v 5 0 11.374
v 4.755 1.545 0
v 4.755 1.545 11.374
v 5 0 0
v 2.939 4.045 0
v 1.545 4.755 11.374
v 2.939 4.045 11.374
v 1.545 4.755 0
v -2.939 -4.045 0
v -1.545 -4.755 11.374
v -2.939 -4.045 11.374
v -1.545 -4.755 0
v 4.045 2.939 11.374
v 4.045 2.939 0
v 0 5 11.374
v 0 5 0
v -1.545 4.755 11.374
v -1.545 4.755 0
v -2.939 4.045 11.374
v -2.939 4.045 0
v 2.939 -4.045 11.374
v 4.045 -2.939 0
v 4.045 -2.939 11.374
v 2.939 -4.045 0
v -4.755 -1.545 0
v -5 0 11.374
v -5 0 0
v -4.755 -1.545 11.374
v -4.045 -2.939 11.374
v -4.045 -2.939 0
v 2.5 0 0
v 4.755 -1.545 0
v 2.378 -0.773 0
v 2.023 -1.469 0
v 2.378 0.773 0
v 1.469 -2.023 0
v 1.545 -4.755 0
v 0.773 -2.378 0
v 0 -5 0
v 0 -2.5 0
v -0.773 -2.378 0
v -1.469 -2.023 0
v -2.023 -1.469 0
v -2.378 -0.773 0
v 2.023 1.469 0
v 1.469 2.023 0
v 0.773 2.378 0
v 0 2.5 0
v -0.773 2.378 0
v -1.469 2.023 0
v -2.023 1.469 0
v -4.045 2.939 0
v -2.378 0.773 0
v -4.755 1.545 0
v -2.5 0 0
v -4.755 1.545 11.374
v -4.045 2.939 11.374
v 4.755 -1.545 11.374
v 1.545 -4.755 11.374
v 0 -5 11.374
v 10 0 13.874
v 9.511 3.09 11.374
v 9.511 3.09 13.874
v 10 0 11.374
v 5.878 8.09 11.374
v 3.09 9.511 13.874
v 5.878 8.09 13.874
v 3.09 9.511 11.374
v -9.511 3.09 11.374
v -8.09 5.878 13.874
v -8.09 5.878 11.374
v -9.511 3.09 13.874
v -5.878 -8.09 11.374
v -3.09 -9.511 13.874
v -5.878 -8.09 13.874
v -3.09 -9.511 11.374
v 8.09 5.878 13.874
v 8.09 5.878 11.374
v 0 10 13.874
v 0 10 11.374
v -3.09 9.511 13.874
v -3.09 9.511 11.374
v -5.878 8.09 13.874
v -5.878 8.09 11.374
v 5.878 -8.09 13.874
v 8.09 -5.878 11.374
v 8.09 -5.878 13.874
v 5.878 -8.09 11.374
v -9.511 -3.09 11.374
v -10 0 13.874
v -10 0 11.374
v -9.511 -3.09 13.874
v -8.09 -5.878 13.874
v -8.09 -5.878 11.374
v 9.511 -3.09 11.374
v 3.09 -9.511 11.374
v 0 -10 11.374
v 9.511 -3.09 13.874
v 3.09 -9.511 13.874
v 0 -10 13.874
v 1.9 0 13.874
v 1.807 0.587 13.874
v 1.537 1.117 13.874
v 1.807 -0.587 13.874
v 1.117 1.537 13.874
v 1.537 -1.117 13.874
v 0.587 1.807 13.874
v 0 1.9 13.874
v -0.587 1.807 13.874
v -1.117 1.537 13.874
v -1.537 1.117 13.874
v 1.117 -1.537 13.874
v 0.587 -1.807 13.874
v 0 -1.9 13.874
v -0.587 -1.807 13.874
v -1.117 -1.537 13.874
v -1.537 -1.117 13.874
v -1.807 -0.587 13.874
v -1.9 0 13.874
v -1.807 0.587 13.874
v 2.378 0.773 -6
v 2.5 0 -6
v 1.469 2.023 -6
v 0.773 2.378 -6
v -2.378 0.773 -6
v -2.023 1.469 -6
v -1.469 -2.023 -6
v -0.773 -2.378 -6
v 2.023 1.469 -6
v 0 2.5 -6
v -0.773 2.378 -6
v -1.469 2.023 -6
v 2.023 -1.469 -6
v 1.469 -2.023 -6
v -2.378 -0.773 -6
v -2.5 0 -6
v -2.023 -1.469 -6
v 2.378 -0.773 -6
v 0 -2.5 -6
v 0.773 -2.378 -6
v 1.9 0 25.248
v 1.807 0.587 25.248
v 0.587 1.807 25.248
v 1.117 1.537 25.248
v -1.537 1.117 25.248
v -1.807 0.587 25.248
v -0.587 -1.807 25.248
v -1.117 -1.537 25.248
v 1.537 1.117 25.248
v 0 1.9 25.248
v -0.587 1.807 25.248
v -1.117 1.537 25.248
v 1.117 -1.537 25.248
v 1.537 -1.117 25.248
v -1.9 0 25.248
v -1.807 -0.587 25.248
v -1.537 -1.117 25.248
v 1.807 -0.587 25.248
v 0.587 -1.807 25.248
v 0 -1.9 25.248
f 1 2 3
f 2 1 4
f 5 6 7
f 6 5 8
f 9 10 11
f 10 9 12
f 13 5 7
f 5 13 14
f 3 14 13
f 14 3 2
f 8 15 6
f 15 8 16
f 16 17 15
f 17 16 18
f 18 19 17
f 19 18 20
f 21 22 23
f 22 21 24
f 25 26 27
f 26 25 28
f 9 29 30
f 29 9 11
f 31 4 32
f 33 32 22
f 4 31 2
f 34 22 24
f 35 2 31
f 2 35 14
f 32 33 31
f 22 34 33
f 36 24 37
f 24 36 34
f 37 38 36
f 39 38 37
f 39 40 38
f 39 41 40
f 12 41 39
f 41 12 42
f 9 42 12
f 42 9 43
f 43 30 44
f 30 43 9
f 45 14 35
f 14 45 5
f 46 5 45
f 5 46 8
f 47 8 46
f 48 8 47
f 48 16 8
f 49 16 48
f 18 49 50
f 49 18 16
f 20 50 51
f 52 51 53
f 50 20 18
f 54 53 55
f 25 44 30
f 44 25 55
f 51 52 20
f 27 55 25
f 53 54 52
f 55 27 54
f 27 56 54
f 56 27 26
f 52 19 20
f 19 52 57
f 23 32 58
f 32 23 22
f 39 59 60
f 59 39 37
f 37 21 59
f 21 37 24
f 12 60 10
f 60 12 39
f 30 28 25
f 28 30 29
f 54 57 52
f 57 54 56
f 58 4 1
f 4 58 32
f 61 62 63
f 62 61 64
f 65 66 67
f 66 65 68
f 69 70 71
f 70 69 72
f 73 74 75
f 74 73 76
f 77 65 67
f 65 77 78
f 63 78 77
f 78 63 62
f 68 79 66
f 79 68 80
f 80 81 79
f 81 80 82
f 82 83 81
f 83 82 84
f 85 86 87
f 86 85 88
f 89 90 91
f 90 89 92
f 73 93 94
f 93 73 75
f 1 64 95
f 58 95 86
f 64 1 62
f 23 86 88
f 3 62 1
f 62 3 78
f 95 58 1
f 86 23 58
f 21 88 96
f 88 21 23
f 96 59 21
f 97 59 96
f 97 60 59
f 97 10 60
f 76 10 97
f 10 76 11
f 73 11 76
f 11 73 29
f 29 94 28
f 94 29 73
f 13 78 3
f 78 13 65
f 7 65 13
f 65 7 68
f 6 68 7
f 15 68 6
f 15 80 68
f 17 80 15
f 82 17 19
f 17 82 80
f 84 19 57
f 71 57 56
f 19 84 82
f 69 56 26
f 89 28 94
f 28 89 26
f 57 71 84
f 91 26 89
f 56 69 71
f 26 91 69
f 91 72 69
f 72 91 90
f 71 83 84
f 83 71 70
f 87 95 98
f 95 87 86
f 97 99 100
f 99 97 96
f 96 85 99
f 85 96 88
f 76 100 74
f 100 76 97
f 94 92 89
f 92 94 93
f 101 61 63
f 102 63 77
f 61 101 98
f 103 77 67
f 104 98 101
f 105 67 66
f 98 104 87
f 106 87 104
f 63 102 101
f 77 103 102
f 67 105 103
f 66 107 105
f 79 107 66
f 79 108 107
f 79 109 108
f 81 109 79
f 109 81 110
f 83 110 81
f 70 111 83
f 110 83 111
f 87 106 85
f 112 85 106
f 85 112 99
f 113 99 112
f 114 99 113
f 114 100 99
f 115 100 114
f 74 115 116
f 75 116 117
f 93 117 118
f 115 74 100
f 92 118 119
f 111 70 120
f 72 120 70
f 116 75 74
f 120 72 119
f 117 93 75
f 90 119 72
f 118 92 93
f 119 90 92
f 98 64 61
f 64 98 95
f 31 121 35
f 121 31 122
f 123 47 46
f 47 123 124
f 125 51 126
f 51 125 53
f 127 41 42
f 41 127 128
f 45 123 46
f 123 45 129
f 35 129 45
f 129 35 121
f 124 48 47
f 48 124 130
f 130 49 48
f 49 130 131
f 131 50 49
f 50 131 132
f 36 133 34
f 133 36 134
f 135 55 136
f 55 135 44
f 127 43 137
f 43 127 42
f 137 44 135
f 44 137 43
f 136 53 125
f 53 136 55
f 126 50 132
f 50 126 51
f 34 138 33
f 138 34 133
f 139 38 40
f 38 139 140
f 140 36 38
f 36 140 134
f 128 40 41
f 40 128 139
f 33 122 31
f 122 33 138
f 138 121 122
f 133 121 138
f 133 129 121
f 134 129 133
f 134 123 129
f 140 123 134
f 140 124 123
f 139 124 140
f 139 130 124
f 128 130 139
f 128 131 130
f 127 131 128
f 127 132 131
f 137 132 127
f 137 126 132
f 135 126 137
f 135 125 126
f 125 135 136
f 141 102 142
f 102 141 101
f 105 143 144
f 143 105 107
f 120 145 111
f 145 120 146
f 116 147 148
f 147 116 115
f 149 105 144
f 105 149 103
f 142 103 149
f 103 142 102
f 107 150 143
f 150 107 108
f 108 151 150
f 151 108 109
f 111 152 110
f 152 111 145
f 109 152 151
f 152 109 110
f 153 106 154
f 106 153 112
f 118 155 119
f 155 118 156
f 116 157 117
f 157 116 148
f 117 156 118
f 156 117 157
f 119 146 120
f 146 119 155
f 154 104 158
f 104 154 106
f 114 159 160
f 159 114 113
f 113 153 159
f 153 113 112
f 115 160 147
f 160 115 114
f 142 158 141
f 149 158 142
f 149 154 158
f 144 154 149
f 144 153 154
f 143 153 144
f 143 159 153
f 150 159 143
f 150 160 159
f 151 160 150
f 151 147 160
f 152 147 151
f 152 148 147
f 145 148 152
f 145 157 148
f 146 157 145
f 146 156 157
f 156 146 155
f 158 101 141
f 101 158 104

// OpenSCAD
//////////////////////////////////////////////////////////////////////////////////////////////
// Public Domain Parametric Involute Spur Gear (and involute helical gear and involute rack)
// version 1.1
// by Leemon Baird, 2011, Leemon@Leemon.com
//http://www.thingiverse.com/thing:5505
//
// This file is public domain.  Use it for any purpose, including commercial
// applications.  Attribution would be nice, but is not required.  There is
// no warranty of any kind, including its correctness, usefulness, or safety.
// 
// This is parameterized involute spur (or helical) gear.  It is much simpler and less powerful than
// others on Thingiverse.  But it is public domain.  I implemented it from scratch from the 
// descriptions and equations on Wikipedia and the web, using Mathematica for calculations and testing,
// and I now release it into the public domain.
//
//		http://en.wikipedia.org/wiki/Involute_gear
//		http://en.wikipedia.org/wiki/Gear
//		http://en.wikipedia.org/wiki/List_of_gear_nomenclature
//		http://gtrebaol.free.fr/doc/catia/spur_gear.html
//		http://www.cs.cmu.edu/~rapidproto/mechanisms/chpt7.html
//
// The module gear() gives an involute spur gear, with reasonable defaults for all the parameters.
// Normally, you should just choose the first 4 parameters, and let the rest be default values.
// The module gear() gives a gear in the XY plane, centered on the origin, with one tooth centered on
// the positive Y axis.  The various functions below it take the same parameters, and return various
// measurements for the gear.  The most important is pitch_radius, which tells how far apart to space
// gears that are meshing, and adendum_radius, which gives the size of the region filled by the gear.
// A gear has a "pitch circle", which is an invisible circle that cuts through the middle of each
// tooth (though not the exact center). In order for two gears to mesh, their pitch circles should 
// just touch.  So the distance between their centers should be pitch_radius() for one, plus pitch_radius() 
// for the other, which gives the radii of their pitch circles.
//
// In order for two gears to mesh, they must have the same mm_per_tooth and pressure_angle parameters.  
// mm_per_tooth gives the number of millimeters of arc around the pitch circle covered by one tooth and one
// space between teeth.  The pitch angle controls how flat or bulged the sides of the teeth are.  Common
// values include 14.5 degrees and 20 degrees, and occasionally 25.  Though I've seen 28 recommended for
// plastic gears. Larger numbers bulge out more, giving stronger teeth, so 28 degrees is the default here.
//
// The ratio of number_of_teeth for two meshing gears gives how many times one will make a full 
// revolution when the the other makes one full revolution.  If the two numbers are coprime (i.e. 
// are not both divisible by the same number greater than 1), then every tooth on one gear
// will meet every tooth on the other, for more even wear.  So coprime numbers of teeth are good.
//
// The module rack() gives a rack, which is a bar with teeth.  A rack can mesh with any
// gear that has the same mm_per_tooth and pressure_angle.
//
// Some terminology: 
// The outline of a gear is a smooth circle (the "pitch circle") which has mountains and valleys
// added so it is toothed.  So there is an inner circle (the "root circle") that touches the 
// base of all the teeth, an outer circle that touches the tips of all the teeth,
// and the invisible pitch circle in between them.  There is also a "base circle", which can be smaller than
// all three of the others, which controls the shape of the teeth.  The side of each tooth lies on the path 
// that the end of a string would follow if it were wrapped tightly around the base circle, then slowly unwound.  
// That shape is an "involute", which gives this type of gear its name.
//
//////////////////////////////////////////////////////////////////////////////////////////////

//An involute spur gear, with reasonable defaults for all the parameters.
//Normally, you should just choose the first 4 parameters, and let the rest be default values.
//Meshing gears must match in mm_per_tooth, pressure_angle, and twist,
//and be separated by the sum of their pitch radii, which can be found with pitch_radius().
module gear (
	mm_per_tooth    = 3,    //this is the "circular pitch", the circumference of the pitch circle divided by the number of teeth
	number_of_teeth = 11,   //total number of teeth around the entire perimeter
	thickness       = 6,    //thickness of gear in mm
	hole_diameter   = 3,    //diameter of the hole in the center, in mm
	twist           = 0,    //teeth rotate this many degrees from bottom of gear to top.  360 makes the gear a screw with each thread going around once
	teeth_to_hide   = 0,    //number of teeth to delete to make this only a fraction of a circle
	pressure_angle  = 28,   //Controls how straight or bulged the tooth sides are. In degrees.
	clearance       = 0.0,  //gap between top of a tooth on one gear and bottom of valley on a meshing gear (in millimeters)
	backlash        = 0.0   //gap between two meshing teeth, in the direction along the circumference of the pitch circle
) {
	assign(pi = 3.1415926)
	assign(p  = mm_per_tooth * number_of_teeth / pi / 2)  //radius of pitch circle
	assign(c  = p + mm_per_tooth / pi - clearance)        //radius of outer circle
	assign(b  = p*cos(pressure_angle))                    //radius of base circle
	assign(r  = p-(c-p)-clearance)                        //radius of root circle
	assign(t  = mm_per_tooth/2-backlash/2)                //tooth thickness at pitch circle
	assign(k  = -iang(b, p) - t/2/p/pi*180) {             //angle to where involute meets base circle on each side of tooth
		union() {
			for (i = [0:number_of_teeth-teeth_to_hide-1] )
				rotate([0,0,i*360/number_of_teeth])
					linear_extrude(height = thickness, center = true, convexity = 10, twist = twist)
						polygon(
							points=[
								[0, -hole_diameter/10],
								polar(r, -181/number_of_teeth),
								polar(r, r<b ? k : -180/number_of_teeth),
								q7(0/5,r,b,c,k, 1),q7(1/5,r,b,c,k, 1),q7(2/5,r,b,c,k, 1),q7(3/5,r,b,c,k, 1),q7(4/5,r,b,c,k, 1),q7(5/5,r,b,c,k, 1),
								q7(5/5,r,b,c,k,-1),q7(4/5,r,b,c,k,-1),q7(3/5,r,b,c,k,-1),q7(2/5,r,b,c,k,-1),q7(1/5,r,b,c,k,-1),q7(0/5,r,b,c,k,-1),
								polar(r, r<b ? -k : 180/number_of_teeth),
								polar(r, 181/number_of_teeth)
							],
 							paths=[[0,1,2,3,4,5,6,7,8,9,10,11,12,13,14,15,16]]
						);
			translate([0,0,-3]) cylinder(h=2*thickness+1, r=hole_diameter/2, center=true, $fn=20);
		}
	}
};	
//these 4 functions are used by gear
function polar(r,theta)   = r*[sin(theta), cos(theta)];                            //convert polar to cartesian coordinates
function iang(r1,r2)      = sqrt((r2/r1)*(r2/r1) - 1)/3.1415926*180 - acos(r1/r2); //unwind a string this many degrees to go from radius r1 to radius r2
function q7(f,r,b,r2,t,s) = q6(b,s,t,(1-f)*max(b,r)+f*r2);                         //radius a fraction f up the curved side of the tooth 
function q6(b,s,t,d)      = polar(d,s*(iang(b,d)+t));                              //point at radius d on the involute curve



//These 5 functions let the user find the derived dimensions of the gear.
//A gear fits within a circle of radius outer_radius, and two gears should have
//their centers separated by the sum of their pictch_radius.
function circular_pitch  (mm_per_tooth=3) = mm_per_tooth;                     //tooth density expressed as "circular pitch" in millimeters
function diametral_pitch (mm_per_tooth=3) = 3.1415926 / mm_per_tooth;         //tooth density expressed as "diametral pitch" in teeth per millimeter
function module_value    (mm_per_tooth=3) = mm_per_tooth / pi;                //tooth density expressed as "module" or "modulus" in millimeters
function pitch_radius    (mm_per_tooth=3,number_of_teeth=11) = mm_per_tooth * number_of_teeth / 3.1415926 / 2;
function outer_radius    (mm_per_tooth=3,number_of_teeth=11,clearance=0.1)    //The gear fits entirely within a cylinder of this radius.
	= mm_per_tooth*(1+number_of_teeth/2)/3.1415926  - clearance;              

//////////////////////////////////////////////////////////////////////////////////////////////
//example gear train.  
//Try it with OpenSCAD View/Animate command with 20 steps and 24 FPS.
//The gears will continue to be rotated to mesh correctly if you change the number of teeth.

n1 = 13; //red gear number of teeth
echo("num",ceil(n1*(3.6)));
n2 = ceil(n1*(3.6)); //green gear
n3 = ceil(n1*(1.5)); //extra gear
//n3 = 5;  //blue gear
//n4 = 20; //orange gear
//n5 = 8;  //gray rack
mm_per_tooth = 8; //all meshing gears need the same mm_per_tooth (and the same pressure_angle)
thickness    = 5;
vert_shift = thickness/2;
big_gear_thickness = thickness*1.2;
big_gear_vert_shift = big_gear_thickness/2;
hole         = 5; // diameter in mm
height       = 12;

d1 =pitch_radius(mm_per_tooth,n1);
d12=pitch_radius(mm_per_tooth,n1) + pitch_radius(mm_per_tooth,n2);
//d13=pitch_radius(mm_per_tooth,n1) + pitch_radius(mm_per_tooth,n3);
//d14=pitch_radius(mm_per_tooth,n1) + pitch_radius(mm_per_tooth,n4);

o_r1=outer_radius(mm_per_tooth,n1);
o_r2=outer_radius(mm_per_tooth,n2);
p_r1=pitch_radius(mm_per_tooth,n1);
p_r2=pitch_radius(mm_per_tooth,n2);

pin_radius    = (p_r1-(hole/2))/4.5;
pin_height   = o_r1*1.75;
pin_shift    = (hole/2)+(p_r1*(3/7));
canvas_thickness = big_gear_thickness/4;
bar_width = pin_radius*4;
bar_length = o_r1*11.5;
bar_hole_length = bar_length*.9;
support_radius = hole;
support_height = pin_height/2-thickness/2-1.5;


// support for bar
union() {
    union() {
        difference(){
            union () {
                union () {
                    translate([0, 0, support_height/2]) color([1.00,0.5,0.5]) cylinder (h = support_height, r=support_radius, center = true, $fn=20);
                    translate([0, 0, pin_height/2-thickness/2-1.5]) color([1.00,0.5,0.5]) cylinder (h = thickness/2, r=support_radius*2, center = true, $fn=20);
                }
                translate([0, 0, 0]) color([1.00,0.5,0.5]) cylinder (h = support_height*1.3, r=hole/2, center = true, $fn=20);
            }
            translate([0,0,-9]) cylinder(6,20,20,true);
        }
        translate([0, 0, support_height]) color([1.00,0.5,0.5]) cylinder (h = support_height*2, r=1.9, center = true, $fn=20);
    }
//    translate([0, 0, pin_height/2+thickness/2+1.5]) color([1.00,0.5,0.5]) cylinder (h = thickness/2, r=support_radius*2, center = true, $fn=20);
}

    
echo("outer radius small: ", o_r1);
echo("outer radius large: ", o_r2);
echo("pitch radius small: ", p_r1);
echo("pitch radius large: ", p_r2);
echo("pin_radius: ", pin_radius);
echo("pin_height: ", pin_height);
echo("bar_width: ", bar_width);
echo("bar_length: ", bar_length);
echo("n1: ", n1);
echo("n2: ", n2);
echo("n3: ", n3);
